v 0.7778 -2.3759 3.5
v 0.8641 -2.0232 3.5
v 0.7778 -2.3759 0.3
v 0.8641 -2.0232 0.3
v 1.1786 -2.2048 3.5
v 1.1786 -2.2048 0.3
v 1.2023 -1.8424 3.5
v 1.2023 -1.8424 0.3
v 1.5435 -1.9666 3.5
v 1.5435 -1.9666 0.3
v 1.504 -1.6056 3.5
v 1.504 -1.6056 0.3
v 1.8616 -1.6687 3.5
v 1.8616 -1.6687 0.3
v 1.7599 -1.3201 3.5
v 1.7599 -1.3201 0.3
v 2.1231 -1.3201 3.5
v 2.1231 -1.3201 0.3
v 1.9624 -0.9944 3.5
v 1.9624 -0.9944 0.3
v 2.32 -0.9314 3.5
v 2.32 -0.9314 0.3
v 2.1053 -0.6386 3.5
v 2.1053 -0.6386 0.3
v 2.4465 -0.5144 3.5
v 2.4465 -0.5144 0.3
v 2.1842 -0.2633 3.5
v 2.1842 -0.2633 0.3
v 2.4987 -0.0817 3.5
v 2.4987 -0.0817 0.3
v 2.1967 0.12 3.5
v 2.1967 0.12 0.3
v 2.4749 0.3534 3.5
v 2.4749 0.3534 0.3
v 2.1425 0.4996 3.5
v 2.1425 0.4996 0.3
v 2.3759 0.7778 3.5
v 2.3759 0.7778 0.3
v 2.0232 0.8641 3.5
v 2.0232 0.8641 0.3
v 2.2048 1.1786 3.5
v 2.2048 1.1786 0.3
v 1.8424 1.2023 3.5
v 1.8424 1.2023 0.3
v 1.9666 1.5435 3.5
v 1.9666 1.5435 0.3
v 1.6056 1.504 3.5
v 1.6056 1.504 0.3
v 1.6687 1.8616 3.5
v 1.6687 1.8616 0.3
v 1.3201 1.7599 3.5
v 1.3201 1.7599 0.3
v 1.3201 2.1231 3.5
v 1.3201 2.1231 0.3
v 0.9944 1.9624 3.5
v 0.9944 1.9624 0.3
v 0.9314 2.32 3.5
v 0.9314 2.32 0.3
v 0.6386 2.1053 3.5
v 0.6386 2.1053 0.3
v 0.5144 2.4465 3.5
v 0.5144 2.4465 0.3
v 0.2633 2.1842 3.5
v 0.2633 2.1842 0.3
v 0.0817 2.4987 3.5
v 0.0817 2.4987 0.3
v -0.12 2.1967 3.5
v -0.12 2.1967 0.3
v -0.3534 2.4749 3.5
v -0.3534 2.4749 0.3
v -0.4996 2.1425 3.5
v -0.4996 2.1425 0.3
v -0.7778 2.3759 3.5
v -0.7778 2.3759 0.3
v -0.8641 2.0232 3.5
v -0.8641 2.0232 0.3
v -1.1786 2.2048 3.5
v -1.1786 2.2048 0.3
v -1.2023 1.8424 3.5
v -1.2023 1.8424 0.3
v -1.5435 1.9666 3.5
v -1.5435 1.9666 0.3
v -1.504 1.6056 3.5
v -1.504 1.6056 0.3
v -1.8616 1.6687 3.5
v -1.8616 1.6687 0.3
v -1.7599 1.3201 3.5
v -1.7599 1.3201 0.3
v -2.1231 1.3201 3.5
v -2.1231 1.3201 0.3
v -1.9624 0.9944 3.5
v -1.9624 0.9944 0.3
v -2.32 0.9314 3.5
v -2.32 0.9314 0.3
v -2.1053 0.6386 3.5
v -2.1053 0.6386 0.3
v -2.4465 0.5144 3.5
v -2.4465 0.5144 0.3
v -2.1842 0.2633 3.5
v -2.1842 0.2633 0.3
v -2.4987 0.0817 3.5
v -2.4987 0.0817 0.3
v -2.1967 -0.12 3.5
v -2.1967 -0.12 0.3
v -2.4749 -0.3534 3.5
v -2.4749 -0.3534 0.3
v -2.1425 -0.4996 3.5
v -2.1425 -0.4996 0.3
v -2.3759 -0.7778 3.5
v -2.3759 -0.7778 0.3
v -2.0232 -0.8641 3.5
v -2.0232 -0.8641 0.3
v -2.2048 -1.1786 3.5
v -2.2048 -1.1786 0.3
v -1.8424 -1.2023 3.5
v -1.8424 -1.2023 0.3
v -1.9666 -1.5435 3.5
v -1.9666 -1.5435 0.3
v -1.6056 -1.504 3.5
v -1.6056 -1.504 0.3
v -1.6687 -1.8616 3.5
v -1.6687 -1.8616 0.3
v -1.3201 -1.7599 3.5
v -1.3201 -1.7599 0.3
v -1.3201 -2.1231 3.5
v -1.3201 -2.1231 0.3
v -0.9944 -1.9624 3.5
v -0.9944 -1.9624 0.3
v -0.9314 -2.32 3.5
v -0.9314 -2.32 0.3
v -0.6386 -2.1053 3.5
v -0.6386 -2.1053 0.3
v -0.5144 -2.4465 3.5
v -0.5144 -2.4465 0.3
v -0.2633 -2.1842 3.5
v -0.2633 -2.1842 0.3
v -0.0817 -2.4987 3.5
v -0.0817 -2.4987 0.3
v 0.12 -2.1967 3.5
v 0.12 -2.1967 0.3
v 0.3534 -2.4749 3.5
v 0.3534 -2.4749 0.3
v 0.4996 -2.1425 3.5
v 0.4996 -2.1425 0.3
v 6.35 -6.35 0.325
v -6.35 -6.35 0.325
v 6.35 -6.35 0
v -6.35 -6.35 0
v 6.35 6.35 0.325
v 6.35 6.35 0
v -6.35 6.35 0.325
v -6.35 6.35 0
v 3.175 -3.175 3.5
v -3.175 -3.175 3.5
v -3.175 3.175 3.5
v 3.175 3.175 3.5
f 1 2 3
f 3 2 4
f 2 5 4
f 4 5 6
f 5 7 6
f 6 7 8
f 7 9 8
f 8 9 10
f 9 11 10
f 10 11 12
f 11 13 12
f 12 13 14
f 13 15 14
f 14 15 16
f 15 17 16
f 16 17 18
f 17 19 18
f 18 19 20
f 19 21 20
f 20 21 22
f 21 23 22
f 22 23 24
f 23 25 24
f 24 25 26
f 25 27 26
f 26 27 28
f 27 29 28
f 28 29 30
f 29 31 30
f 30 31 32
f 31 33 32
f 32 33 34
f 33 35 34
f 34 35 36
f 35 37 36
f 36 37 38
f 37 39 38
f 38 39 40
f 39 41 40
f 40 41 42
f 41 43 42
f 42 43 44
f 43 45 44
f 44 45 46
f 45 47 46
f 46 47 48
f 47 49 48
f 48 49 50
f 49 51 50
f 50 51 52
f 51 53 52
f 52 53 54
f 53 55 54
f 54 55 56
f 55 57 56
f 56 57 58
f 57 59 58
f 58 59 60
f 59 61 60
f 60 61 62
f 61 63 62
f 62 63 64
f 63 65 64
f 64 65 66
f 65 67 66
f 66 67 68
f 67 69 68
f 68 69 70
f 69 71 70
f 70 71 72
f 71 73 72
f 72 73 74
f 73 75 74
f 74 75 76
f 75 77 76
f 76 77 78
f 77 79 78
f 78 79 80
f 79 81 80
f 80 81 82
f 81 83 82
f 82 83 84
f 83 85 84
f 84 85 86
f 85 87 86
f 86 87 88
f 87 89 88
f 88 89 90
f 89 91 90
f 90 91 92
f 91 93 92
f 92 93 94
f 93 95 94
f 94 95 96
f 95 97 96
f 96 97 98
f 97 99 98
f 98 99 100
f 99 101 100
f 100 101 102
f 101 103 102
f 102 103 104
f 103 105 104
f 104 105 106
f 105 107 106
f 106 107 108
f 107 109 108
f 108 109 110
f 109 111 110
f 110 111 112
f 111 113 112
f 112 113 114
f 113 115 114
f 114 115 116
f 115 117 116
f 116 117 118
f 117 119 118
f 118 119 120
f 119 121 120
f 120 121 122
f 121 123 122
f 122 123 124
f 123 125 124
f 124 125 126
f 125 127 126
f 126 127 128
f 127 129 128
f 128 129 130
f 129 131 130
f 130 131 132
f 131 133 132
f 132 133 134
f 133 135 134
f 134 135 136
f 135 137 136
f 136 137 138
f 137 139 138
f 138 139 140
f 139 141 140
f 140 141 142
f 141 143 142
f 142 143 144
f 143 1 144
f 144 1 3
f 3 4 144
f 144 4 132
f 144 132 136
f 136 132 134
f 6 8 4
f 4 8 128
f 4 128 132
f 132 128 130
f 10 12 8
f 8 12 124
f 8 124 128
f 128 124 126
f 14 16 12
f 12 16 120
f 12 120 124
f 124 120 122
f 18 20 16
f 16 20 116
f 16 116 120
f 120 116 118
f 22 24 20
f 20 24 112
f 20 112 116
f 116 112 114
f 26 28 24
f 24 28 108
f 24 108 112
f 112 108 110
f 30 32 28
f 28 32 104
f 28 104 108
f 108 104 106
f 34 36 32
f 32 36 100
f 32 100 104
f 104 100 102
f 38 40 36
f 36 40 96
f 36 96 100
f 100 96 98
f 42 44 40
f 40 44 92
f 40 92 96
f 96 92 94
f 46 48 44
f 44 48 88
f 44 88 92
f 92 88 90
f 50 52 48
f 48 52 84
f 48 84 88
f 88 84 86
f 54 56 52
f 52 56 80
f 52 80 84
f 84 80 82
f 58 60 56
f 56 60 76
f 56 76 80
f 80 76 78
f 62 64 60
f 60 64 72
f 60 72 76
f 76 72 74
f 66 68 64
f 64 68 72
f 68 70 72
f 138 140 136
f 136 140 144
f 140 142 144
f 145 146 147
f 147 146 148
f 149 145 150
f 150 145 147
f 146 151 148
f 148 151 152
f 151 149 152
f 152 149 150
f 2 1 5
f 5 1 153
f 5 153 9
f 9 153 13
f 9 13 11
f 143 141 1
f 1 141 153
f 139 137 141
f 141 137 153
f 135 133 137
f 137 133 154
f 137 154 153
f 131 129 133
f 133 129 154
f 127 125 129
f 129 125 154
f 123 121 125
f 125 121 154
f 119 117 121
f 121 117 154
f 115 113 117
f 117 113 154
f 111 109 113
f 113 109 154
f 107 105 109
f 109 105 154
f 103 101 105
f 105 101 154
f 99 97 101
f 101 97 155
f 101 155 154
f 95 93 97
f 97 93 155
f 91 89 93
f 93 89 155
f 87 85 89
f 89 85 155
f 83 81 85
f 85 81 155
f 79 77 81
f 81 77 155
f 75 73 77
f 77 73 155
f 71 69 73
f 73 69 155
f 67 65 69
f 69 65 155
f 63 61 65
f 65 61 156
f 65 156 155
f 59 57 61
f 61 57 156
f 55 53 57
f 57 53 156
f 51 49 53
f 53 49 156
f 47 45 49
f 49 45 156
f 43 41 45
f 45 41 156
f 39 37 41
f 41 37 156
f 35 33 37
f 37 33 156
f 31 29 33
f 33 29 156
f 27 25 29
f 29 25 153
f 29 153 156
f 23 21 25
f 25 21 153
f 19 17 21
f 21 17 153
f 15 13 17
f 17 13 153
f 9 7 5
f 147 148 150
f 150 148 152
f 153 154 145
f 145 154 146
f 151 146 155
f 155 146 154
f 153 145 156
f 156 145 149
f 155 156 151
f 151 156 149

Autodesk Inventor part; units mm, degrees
ref_plane "YZ Plane" through (0, 0, 0) normal (1, 0, 0) x (0, 1, 0)
ref_plane "XZ Plane" through (0, 0, 0) normal (0, 1, 0) x (-1, 0, 0)
ref_plane "XY Plane" through (0, 0, 0) normal (0, 0, 1) x (1, 0, 0)
sketch "Sketch1" plane through (0, 0, 0) normal (0, 0, 1) x (1, 0, 0)
  line L0 (-6.35, -6.35) -> (6.35, -6.35)
  line L1 (6.35, -6.35) -> (6.35, 6.35)
  line L2 (6.35, 6.35) -> (-6.35, 6.35)
  line L3 (-6.35, 6.35) -> (-6.35, -6.35)
  line L4 (-6.35, -6.35) -> (6.35, 6.35) construction
  line L5 (6.35, -6.35) -> (-6.35, 6.35) construction
  line L6 (-0.3534, 2.4749) -> (-0.4996, 2.1425)
  line L7 (-0.3534, 2.4749) -> (-0.12, 2.1967)
  line L8 (-0.7778, 2.3759) -> (-0.8641, 2.0232)
  line L9 (-0.7778, 2.3759) -> (-0.4996, 2.1425)
  line L10 (-1.1786, 2.2048) -> (-1.2023, 1.8424)
  line L11 (-1.1786, 2.2048) -> (-0.8641, 2.0232)
  line L12 (-1.5435, 1.9666) -> (-1.504, 1.6056)
  line L13 (-1.5435, 1.9666) -> (-1.2023, 1.8424)
  line L14 (-1.8616, 1.6687) -> (-1.7599, 1.3201)
  line L15 (-1.8616, 1.6687) -> (-1.504, 1.6056)
  line L16 (-2.1231, 1.3201) -> (-1.9624, 0.9944)
  line L17 (-2.1231, 1.3201) -> (-1.7599, 1.3201)
  line L18 (-2.32, 0.9314) -> (-2.1053, 0.6386)
  line L19 (-2.32, 0.9314) -> (-1.9624, 0.9944)
  line L20 (-2.4465, 0.5144) -> (-2.1842, 0.2633)
  line L21 (-2.4465, 0.5144) -> (-2.1053, 0.6386)
  line L22 (-2.4987, 0.0817) -> (-2.1967, -0.12)
  line L23 (-2.4987, 0.0817) -> (-2.1842, 0.2633)
  line L24 (-2.4749, -0.3534) -> (-2.1425, -0.4996)
  line L25 (-2.4749, -0.3534) -> (-2.1967, -0.12)
  line L26 (-2.3759, -0.7778) -> (-2.0232, -0.8641)
  line L27 (-2.3759, -0.7778) -> (-2.1425, -0.4996)
  line L28 (-2.2048, -1.1786) -> (-1.8424, -1.2023)
  line L29 (-2.2048, -1.1786) -> (-2.0232, -0.8641)
  line L30 (-1.9666, -1.5435) -> (-1.6056, -1.504)
  line L31 (-1.9666, -1.5435) -> (-1.8424, -1.2023)
  line L32 (-1.6687, -1.8616) -> (-1.3201, -1.7599)
  line L33 (-1.6687, -1.8616) -> (-1.6056, -1.504)
  line L34 (-1.3201, -2.1231) -> (-0.9944, -1.9624)
  line L35 (-1.3201, -2.1231) -> (-1.3201, -1.7599)
  line L36 (-0.9314, -2.32) -> (-0.6386, -2.1053)
  line L37 (-0.9314, -2.32) -> (-0.9944, -1.9624)
  line L38 (-0.5144, -2.4465) -> (-0.2633, -2.1842)
  line L39 (-0.5144, -2.4465) -> (-0.6386, -2.1053)
  line L40 (-0.0817, -2.4987) -> (0.12, -2.1967)
  line L41 (-0.0817, -2.4987) -> (-0.2633, -2.1842)
  line L42 (0.3534, -2.4749) -> (0.4996, -2.1425)
  line L43 (0.3534, -2.4749) -> (0.12, -2.1967)
  line L44 (0.7778, -2.3759) -> (0.8641, -2.0232)
  line L45 (0.7778, -2.3759) -> (0.4996, -2.1425)
  line L46 (1.1786, -2.2048) -> (1.2023, -1.8424)
  line L47 (1.1786, -2.2048) -> (0.8641, -2.0232)
  line L48 (1.5435, -1.9666) -> (1.504, -1.6056)
  line L49 (1.5435, -1.9666) -> (1.2023, -1.8424)
  line L50 (1.8616, -1.6687) -> (1.7599, -1.3201)
  line L51 (1.8616, -1.6687) -> (1.504, -1.6056)
  line L52 (2.1231, -1.3201) -> (1.9624, -0.9944)
  line L53 (2.1231, -1.3201) -> (1.7599, -1.3201)
  line L54 (2.32, -0.9314) -> (2.1053, -0.6386)
  line L55 (2.32, -0.9314) -> (1.9624, -0.9944)
  line L56 (2.4465, -0.5144) -> (2.1842, -0.2633)
  line L57 (2.4465, -0.5144) -> (2.1053, -0.6386)
  line L58 (2.4987, -0.0817) -> (2.1967, 0.12)
  line L59 (2.4987, -0.0817) -> (2.1842, -0.2633)
  line L60 (2.4749, 0.3534) -> (2.1425, 0.4996)
  line L61 (2.4749, 0.3534) -> (2.1967, 0.12)
  line L62 (2.3759, 0.7778) -> (2.0232, 0.8641)
  line L63 (2.3759, 0.7778) -> (2.1425, 0.4996)
  line L64 (2.2048, 1.1786) -> (1.8424, 1.2023)
  line L65 (2.2048, 1.1786) -> (2.0232, 0.8641)
  line L66 (1.9666, 1.5435) -> (1.6056, 1.504)
  line L67 (1.9666, 1.5435) -> (1.8424, 1.2023)
  line L68 (1.6687, 1.8616) -> (1.3201, 1.7599)
  line L69 (1.6687, 1.8616) -> (1.6056, 1.504)
  line L70 (1.3201, 2.1231) -> (0.9944, 1.9624)
  line L71 (1.3201, 2.1231) -> (1.3201, 1.7599)
  line L72 (0.9314, 2.32) -> (0.6386, 2.1053)
  line L73 (0.9314, 2.32) -> (0.9944, 1.9624)
  line L74 (0.5144, 2.4465) -> (0.2633, 2.1842)
  line L75 (0.5144, 2.4465) -> (0.6386, 2.1053)
  line L76 (0.0817, 2.4987) -> (-0.12, 2.1967)
  line L77 (0.0817, 2.4987) -> (0.2633, 2.1842)
  circle A0 centre (0, 0) radius 0.3723
  point P0 (0, 0)
  dimension "d0" = 12.7
  dimension "d1" = 12.7
extrude "Extrusion1" add sketch "Sketch1" along normal blind 3.5 contours L3 L2 L1 L0 | L7 L76 L77 L74 L75 L72 L73 L70 L71 L68 L69 L66 L67 L64 L65 L62 L63 L60 L61 L58 L59 L56 L57 L54 L55 L52 L53 L50 L51 L48 L49 L46 L47 L44 L45 L42 L43 L40 L41 L38 L39 L36 L37 L34 L35 L32 L33 L30 L31 L28 L29 L26 L27 L24 L25 L22 L23 L20 L21 L18 L19 L16 L17 L14 L15 L12 L13 L10 L11 L8 L9 L6 | A0
sketch "Sketch2" plane through (0, 0, 3.5) normal (0, 0, 1) x (1, 0, 0)
  line L0 (2.2048, 1.1786) -> (1.8424, 1.2023)
  line L1 (2.2048, 1.1786) -> (2.0232, 0.8641)
  line L2 (2.4749, 0.3534) -> (2.1425, 0.4996)
  line L3 (2.4749, 0.3534) -> (2.1967, 0.12)
  line L4 (2.4987, -0.0817) -> (2.1967, 0.12)
  line L5 (2.4987, -0.0817) -> (2.1842, -0.2633)
  line L6 (-0.3534, 2.4749) -> (-0.12, 2.1967)
  line L7 (-0.3534, 2.4749) -> (-0.4996, 2.1425)
  line L8 (-1.5435, 1.9666) -> (-1.504, 1.6056)
  line L9 (-1.8616, 1.6687) -> (-1.504, 1.6056)
  line L10 (-1.8616, 1.6687) -> (-1.7599, 1.3201)
  line L11 (-1.5435, 1.9666) -> (-1.2023, 1.8424)
  line L12 (-1.1786, 2.2048) -> (-1.2023, 1.8424)
  line L13 (-1.1786, 2.2048) -> (-0.8641, 2.0232)
  line L14 (-0.7778, 2.3759) -> (-0.8641, 2.0232)
  line L15 (-0.7778, 2.3759) -> (-0.4996, 2.1425)
  line L16 (-2.1231, 1.3201) -> (-1.7599, 1.3201)
  line L17 (-2.1231, 1.3201) -> (-1.9624, 0.9944)
  line L18 (-2.32, 0.9314) -> (-1.9624, 0.9944)
  line L19 (-2.32, 0.9314) -> (-2.1053, 0.6386)
  line L20 (-2.4465, 0.5144) -> (-2.1053, 0.6386)
  line L21 (-2.4465, 0.5144) -> (-2.1842, 0.2633)
  line L22 (-2.4987, 0.0817) -> (-2.1842, 0.2633)
  line L23 (-2.4987, 0.0817) -> (-2.1967, -0.12)
  line L24 (-2.4749, -0.3534) -> (-2.1967, -0.12)
  line L25 (-2.4749, -0.3534) -> (-2.1425, -0.4996)
  line L26 (-2.3759, -0.7778) -> (-2.1425, -0.4996)
  line L27 (-2.3759, -0.7778) -> (-2.0232, -0.8641)
  line L28 (-2.2048, -1.1786) -> (-2.0232, -0.8641)
  line L29 (-2.2048, -1.1786) -> (-1.8424, -1.2023)
  line L30 (-1.9666, -1.5435) -> (-1.8424, -1.2023)
  line L31 (-1.9666, -1.5435) -> (-1.6056, -1.504)
  line L32 (-1.6687, -1.8616) -> (-1.6056, -1.504)
  line L33 (-1.6687, -1.8616) -> (-1.3201, -1.7599)
  line L34 (-1.3201, -2.1231) -> (-1.3201, -1.7599)
  line L35 (-1.3201, -2.1231) -> (-0.9944, -1.9624)
  line L36 (-0.9314, -2.32) -> (-0.9944, -1.9624)
  line L37 (-0.9314, -2.32) -> (-0.6386, -2.1053)
  line L38 (-0.5144, -2.4465) -> (-0.6386, -2.1053)
  line L39 (-0.5144, -2.4465) -> (-0.2633, -2.1842)
  line L40 (-0.0817, -2.4987) -> (-0.2633, -2.1842)
  line L41 (-0.0817, -2.4987) -> (0.12, -2.1967)
  line L42 (0.3534, -2.4749) -> (0.12, -2.1967)
  line L43 (0.3534, -2.4749) -> (0.4996, -2.1425)
  line L44 (0.7778, -2.3759) -> (0.4996, -2.1425)
  line L45 (0.7778, -2.3759) -> (0.8641, -2.0232)
  line L46 (1.1786, -2.2048) -> (0.8641, -2.0232)
  line L47 (1.1786, -2.2048) -> (1.2023, -1.8424)
  line L48 (1.5435, -1.9666) -> (1.2023, -1.8424)
  line L49 (1.5435, -1.9666) -> (1.504, -1.6056)
  line L50 (1.8616, -1.6687) -> (1.504, -1.6056)
  line L51 (1.8616, -1.6687) -> (1.7599, -1.3201)
  line L52 (2.1231, -1.3201) -> (1.7599, -1.3201)
  line L53 (2.1231, -1.3201) -> (1.9624, -0.9944)
  line L54 (2.32, -0.9314) -> (1.9624, -0.9944)
  line L55 (2.32, -0.9314) -> (2.1053, -0.6386)
  line L56 (2.4465, -0.5144) -> (2.1053, -0.6386)
  line L57 (2.4465, -0.5144) -> (2.1842, -0.2633)
  line L58 (2.3759, 0.7778) -> (2.0232, 0.8641)
  line L59 (2.3759, 0.7778) -> (2.1425, 0.4996)
  line L60 (1.9666, 1.5435) -> (1.8424, 1.2023)
  line L61 (1.9666, 1.5435) -> (1.6056, 1.504)
  line L62 (1.6687, 1.8616) -> (1.6056, 1.504)
  line L63 (1.6687, 1.8616) -> (1.3201, 1.7599)
  line L64 (0.0817, 2.4987) -> (-0.12, 2.1967)
  line L65 (0.0817, 2.4987) -> (0.2633, 2.1842)
  circle A0 centre (0, 0) radius 0.3723
  line L66 (0.5144, 2.4465) -> (0.2633, 2.1842)
  line L67 (0.5144, 2.4465) -> (0.6386, 2.1053)
  line L68 (1.3201, 2.1231) -> (1.3201, 1.7599)
  line L69 (1.3201, 2.1231) -> (0.9944, 1.9624)
  line L70 (0.9314, 2.32) -> (0.9944, 1.9624)
  line L71 (0.9314, 2.32) -> (0.6386, 2.1053)
  point P0 (0, 0)
extrude "Extrusion2" cut sketch "Sketch2" against normal blind 3.2 contours L1 L58 L59 L2 L3 L4 L5 L57 L56 L55 L54 L53 L52 L51 L50 L49 L48 L47 L46 L45 L44 L43 L42 L41 L40 L39 L38 L37 L36 L35 L34 L33 L32 L31 L30 L29 L28 L27 L26 L25 L24 L23 L22 L21 L20 L19 L18 L17 L16 L10 L9 L8 L11 L12 L13 L14 L15 L7 L6 L64 L65 L66 L67 L71 L70 L69 L68 L63 L62 L61 L60 L0 | A0
chamfer "Chamfer1" distance 3.175 angle 45 4 edges at (0, -6.35, 3.5) (-6.35, 0, 3.5) (6.35, 0, 3.5) (0, 6.35, 3.5)
properties part number "Servo Grip"
